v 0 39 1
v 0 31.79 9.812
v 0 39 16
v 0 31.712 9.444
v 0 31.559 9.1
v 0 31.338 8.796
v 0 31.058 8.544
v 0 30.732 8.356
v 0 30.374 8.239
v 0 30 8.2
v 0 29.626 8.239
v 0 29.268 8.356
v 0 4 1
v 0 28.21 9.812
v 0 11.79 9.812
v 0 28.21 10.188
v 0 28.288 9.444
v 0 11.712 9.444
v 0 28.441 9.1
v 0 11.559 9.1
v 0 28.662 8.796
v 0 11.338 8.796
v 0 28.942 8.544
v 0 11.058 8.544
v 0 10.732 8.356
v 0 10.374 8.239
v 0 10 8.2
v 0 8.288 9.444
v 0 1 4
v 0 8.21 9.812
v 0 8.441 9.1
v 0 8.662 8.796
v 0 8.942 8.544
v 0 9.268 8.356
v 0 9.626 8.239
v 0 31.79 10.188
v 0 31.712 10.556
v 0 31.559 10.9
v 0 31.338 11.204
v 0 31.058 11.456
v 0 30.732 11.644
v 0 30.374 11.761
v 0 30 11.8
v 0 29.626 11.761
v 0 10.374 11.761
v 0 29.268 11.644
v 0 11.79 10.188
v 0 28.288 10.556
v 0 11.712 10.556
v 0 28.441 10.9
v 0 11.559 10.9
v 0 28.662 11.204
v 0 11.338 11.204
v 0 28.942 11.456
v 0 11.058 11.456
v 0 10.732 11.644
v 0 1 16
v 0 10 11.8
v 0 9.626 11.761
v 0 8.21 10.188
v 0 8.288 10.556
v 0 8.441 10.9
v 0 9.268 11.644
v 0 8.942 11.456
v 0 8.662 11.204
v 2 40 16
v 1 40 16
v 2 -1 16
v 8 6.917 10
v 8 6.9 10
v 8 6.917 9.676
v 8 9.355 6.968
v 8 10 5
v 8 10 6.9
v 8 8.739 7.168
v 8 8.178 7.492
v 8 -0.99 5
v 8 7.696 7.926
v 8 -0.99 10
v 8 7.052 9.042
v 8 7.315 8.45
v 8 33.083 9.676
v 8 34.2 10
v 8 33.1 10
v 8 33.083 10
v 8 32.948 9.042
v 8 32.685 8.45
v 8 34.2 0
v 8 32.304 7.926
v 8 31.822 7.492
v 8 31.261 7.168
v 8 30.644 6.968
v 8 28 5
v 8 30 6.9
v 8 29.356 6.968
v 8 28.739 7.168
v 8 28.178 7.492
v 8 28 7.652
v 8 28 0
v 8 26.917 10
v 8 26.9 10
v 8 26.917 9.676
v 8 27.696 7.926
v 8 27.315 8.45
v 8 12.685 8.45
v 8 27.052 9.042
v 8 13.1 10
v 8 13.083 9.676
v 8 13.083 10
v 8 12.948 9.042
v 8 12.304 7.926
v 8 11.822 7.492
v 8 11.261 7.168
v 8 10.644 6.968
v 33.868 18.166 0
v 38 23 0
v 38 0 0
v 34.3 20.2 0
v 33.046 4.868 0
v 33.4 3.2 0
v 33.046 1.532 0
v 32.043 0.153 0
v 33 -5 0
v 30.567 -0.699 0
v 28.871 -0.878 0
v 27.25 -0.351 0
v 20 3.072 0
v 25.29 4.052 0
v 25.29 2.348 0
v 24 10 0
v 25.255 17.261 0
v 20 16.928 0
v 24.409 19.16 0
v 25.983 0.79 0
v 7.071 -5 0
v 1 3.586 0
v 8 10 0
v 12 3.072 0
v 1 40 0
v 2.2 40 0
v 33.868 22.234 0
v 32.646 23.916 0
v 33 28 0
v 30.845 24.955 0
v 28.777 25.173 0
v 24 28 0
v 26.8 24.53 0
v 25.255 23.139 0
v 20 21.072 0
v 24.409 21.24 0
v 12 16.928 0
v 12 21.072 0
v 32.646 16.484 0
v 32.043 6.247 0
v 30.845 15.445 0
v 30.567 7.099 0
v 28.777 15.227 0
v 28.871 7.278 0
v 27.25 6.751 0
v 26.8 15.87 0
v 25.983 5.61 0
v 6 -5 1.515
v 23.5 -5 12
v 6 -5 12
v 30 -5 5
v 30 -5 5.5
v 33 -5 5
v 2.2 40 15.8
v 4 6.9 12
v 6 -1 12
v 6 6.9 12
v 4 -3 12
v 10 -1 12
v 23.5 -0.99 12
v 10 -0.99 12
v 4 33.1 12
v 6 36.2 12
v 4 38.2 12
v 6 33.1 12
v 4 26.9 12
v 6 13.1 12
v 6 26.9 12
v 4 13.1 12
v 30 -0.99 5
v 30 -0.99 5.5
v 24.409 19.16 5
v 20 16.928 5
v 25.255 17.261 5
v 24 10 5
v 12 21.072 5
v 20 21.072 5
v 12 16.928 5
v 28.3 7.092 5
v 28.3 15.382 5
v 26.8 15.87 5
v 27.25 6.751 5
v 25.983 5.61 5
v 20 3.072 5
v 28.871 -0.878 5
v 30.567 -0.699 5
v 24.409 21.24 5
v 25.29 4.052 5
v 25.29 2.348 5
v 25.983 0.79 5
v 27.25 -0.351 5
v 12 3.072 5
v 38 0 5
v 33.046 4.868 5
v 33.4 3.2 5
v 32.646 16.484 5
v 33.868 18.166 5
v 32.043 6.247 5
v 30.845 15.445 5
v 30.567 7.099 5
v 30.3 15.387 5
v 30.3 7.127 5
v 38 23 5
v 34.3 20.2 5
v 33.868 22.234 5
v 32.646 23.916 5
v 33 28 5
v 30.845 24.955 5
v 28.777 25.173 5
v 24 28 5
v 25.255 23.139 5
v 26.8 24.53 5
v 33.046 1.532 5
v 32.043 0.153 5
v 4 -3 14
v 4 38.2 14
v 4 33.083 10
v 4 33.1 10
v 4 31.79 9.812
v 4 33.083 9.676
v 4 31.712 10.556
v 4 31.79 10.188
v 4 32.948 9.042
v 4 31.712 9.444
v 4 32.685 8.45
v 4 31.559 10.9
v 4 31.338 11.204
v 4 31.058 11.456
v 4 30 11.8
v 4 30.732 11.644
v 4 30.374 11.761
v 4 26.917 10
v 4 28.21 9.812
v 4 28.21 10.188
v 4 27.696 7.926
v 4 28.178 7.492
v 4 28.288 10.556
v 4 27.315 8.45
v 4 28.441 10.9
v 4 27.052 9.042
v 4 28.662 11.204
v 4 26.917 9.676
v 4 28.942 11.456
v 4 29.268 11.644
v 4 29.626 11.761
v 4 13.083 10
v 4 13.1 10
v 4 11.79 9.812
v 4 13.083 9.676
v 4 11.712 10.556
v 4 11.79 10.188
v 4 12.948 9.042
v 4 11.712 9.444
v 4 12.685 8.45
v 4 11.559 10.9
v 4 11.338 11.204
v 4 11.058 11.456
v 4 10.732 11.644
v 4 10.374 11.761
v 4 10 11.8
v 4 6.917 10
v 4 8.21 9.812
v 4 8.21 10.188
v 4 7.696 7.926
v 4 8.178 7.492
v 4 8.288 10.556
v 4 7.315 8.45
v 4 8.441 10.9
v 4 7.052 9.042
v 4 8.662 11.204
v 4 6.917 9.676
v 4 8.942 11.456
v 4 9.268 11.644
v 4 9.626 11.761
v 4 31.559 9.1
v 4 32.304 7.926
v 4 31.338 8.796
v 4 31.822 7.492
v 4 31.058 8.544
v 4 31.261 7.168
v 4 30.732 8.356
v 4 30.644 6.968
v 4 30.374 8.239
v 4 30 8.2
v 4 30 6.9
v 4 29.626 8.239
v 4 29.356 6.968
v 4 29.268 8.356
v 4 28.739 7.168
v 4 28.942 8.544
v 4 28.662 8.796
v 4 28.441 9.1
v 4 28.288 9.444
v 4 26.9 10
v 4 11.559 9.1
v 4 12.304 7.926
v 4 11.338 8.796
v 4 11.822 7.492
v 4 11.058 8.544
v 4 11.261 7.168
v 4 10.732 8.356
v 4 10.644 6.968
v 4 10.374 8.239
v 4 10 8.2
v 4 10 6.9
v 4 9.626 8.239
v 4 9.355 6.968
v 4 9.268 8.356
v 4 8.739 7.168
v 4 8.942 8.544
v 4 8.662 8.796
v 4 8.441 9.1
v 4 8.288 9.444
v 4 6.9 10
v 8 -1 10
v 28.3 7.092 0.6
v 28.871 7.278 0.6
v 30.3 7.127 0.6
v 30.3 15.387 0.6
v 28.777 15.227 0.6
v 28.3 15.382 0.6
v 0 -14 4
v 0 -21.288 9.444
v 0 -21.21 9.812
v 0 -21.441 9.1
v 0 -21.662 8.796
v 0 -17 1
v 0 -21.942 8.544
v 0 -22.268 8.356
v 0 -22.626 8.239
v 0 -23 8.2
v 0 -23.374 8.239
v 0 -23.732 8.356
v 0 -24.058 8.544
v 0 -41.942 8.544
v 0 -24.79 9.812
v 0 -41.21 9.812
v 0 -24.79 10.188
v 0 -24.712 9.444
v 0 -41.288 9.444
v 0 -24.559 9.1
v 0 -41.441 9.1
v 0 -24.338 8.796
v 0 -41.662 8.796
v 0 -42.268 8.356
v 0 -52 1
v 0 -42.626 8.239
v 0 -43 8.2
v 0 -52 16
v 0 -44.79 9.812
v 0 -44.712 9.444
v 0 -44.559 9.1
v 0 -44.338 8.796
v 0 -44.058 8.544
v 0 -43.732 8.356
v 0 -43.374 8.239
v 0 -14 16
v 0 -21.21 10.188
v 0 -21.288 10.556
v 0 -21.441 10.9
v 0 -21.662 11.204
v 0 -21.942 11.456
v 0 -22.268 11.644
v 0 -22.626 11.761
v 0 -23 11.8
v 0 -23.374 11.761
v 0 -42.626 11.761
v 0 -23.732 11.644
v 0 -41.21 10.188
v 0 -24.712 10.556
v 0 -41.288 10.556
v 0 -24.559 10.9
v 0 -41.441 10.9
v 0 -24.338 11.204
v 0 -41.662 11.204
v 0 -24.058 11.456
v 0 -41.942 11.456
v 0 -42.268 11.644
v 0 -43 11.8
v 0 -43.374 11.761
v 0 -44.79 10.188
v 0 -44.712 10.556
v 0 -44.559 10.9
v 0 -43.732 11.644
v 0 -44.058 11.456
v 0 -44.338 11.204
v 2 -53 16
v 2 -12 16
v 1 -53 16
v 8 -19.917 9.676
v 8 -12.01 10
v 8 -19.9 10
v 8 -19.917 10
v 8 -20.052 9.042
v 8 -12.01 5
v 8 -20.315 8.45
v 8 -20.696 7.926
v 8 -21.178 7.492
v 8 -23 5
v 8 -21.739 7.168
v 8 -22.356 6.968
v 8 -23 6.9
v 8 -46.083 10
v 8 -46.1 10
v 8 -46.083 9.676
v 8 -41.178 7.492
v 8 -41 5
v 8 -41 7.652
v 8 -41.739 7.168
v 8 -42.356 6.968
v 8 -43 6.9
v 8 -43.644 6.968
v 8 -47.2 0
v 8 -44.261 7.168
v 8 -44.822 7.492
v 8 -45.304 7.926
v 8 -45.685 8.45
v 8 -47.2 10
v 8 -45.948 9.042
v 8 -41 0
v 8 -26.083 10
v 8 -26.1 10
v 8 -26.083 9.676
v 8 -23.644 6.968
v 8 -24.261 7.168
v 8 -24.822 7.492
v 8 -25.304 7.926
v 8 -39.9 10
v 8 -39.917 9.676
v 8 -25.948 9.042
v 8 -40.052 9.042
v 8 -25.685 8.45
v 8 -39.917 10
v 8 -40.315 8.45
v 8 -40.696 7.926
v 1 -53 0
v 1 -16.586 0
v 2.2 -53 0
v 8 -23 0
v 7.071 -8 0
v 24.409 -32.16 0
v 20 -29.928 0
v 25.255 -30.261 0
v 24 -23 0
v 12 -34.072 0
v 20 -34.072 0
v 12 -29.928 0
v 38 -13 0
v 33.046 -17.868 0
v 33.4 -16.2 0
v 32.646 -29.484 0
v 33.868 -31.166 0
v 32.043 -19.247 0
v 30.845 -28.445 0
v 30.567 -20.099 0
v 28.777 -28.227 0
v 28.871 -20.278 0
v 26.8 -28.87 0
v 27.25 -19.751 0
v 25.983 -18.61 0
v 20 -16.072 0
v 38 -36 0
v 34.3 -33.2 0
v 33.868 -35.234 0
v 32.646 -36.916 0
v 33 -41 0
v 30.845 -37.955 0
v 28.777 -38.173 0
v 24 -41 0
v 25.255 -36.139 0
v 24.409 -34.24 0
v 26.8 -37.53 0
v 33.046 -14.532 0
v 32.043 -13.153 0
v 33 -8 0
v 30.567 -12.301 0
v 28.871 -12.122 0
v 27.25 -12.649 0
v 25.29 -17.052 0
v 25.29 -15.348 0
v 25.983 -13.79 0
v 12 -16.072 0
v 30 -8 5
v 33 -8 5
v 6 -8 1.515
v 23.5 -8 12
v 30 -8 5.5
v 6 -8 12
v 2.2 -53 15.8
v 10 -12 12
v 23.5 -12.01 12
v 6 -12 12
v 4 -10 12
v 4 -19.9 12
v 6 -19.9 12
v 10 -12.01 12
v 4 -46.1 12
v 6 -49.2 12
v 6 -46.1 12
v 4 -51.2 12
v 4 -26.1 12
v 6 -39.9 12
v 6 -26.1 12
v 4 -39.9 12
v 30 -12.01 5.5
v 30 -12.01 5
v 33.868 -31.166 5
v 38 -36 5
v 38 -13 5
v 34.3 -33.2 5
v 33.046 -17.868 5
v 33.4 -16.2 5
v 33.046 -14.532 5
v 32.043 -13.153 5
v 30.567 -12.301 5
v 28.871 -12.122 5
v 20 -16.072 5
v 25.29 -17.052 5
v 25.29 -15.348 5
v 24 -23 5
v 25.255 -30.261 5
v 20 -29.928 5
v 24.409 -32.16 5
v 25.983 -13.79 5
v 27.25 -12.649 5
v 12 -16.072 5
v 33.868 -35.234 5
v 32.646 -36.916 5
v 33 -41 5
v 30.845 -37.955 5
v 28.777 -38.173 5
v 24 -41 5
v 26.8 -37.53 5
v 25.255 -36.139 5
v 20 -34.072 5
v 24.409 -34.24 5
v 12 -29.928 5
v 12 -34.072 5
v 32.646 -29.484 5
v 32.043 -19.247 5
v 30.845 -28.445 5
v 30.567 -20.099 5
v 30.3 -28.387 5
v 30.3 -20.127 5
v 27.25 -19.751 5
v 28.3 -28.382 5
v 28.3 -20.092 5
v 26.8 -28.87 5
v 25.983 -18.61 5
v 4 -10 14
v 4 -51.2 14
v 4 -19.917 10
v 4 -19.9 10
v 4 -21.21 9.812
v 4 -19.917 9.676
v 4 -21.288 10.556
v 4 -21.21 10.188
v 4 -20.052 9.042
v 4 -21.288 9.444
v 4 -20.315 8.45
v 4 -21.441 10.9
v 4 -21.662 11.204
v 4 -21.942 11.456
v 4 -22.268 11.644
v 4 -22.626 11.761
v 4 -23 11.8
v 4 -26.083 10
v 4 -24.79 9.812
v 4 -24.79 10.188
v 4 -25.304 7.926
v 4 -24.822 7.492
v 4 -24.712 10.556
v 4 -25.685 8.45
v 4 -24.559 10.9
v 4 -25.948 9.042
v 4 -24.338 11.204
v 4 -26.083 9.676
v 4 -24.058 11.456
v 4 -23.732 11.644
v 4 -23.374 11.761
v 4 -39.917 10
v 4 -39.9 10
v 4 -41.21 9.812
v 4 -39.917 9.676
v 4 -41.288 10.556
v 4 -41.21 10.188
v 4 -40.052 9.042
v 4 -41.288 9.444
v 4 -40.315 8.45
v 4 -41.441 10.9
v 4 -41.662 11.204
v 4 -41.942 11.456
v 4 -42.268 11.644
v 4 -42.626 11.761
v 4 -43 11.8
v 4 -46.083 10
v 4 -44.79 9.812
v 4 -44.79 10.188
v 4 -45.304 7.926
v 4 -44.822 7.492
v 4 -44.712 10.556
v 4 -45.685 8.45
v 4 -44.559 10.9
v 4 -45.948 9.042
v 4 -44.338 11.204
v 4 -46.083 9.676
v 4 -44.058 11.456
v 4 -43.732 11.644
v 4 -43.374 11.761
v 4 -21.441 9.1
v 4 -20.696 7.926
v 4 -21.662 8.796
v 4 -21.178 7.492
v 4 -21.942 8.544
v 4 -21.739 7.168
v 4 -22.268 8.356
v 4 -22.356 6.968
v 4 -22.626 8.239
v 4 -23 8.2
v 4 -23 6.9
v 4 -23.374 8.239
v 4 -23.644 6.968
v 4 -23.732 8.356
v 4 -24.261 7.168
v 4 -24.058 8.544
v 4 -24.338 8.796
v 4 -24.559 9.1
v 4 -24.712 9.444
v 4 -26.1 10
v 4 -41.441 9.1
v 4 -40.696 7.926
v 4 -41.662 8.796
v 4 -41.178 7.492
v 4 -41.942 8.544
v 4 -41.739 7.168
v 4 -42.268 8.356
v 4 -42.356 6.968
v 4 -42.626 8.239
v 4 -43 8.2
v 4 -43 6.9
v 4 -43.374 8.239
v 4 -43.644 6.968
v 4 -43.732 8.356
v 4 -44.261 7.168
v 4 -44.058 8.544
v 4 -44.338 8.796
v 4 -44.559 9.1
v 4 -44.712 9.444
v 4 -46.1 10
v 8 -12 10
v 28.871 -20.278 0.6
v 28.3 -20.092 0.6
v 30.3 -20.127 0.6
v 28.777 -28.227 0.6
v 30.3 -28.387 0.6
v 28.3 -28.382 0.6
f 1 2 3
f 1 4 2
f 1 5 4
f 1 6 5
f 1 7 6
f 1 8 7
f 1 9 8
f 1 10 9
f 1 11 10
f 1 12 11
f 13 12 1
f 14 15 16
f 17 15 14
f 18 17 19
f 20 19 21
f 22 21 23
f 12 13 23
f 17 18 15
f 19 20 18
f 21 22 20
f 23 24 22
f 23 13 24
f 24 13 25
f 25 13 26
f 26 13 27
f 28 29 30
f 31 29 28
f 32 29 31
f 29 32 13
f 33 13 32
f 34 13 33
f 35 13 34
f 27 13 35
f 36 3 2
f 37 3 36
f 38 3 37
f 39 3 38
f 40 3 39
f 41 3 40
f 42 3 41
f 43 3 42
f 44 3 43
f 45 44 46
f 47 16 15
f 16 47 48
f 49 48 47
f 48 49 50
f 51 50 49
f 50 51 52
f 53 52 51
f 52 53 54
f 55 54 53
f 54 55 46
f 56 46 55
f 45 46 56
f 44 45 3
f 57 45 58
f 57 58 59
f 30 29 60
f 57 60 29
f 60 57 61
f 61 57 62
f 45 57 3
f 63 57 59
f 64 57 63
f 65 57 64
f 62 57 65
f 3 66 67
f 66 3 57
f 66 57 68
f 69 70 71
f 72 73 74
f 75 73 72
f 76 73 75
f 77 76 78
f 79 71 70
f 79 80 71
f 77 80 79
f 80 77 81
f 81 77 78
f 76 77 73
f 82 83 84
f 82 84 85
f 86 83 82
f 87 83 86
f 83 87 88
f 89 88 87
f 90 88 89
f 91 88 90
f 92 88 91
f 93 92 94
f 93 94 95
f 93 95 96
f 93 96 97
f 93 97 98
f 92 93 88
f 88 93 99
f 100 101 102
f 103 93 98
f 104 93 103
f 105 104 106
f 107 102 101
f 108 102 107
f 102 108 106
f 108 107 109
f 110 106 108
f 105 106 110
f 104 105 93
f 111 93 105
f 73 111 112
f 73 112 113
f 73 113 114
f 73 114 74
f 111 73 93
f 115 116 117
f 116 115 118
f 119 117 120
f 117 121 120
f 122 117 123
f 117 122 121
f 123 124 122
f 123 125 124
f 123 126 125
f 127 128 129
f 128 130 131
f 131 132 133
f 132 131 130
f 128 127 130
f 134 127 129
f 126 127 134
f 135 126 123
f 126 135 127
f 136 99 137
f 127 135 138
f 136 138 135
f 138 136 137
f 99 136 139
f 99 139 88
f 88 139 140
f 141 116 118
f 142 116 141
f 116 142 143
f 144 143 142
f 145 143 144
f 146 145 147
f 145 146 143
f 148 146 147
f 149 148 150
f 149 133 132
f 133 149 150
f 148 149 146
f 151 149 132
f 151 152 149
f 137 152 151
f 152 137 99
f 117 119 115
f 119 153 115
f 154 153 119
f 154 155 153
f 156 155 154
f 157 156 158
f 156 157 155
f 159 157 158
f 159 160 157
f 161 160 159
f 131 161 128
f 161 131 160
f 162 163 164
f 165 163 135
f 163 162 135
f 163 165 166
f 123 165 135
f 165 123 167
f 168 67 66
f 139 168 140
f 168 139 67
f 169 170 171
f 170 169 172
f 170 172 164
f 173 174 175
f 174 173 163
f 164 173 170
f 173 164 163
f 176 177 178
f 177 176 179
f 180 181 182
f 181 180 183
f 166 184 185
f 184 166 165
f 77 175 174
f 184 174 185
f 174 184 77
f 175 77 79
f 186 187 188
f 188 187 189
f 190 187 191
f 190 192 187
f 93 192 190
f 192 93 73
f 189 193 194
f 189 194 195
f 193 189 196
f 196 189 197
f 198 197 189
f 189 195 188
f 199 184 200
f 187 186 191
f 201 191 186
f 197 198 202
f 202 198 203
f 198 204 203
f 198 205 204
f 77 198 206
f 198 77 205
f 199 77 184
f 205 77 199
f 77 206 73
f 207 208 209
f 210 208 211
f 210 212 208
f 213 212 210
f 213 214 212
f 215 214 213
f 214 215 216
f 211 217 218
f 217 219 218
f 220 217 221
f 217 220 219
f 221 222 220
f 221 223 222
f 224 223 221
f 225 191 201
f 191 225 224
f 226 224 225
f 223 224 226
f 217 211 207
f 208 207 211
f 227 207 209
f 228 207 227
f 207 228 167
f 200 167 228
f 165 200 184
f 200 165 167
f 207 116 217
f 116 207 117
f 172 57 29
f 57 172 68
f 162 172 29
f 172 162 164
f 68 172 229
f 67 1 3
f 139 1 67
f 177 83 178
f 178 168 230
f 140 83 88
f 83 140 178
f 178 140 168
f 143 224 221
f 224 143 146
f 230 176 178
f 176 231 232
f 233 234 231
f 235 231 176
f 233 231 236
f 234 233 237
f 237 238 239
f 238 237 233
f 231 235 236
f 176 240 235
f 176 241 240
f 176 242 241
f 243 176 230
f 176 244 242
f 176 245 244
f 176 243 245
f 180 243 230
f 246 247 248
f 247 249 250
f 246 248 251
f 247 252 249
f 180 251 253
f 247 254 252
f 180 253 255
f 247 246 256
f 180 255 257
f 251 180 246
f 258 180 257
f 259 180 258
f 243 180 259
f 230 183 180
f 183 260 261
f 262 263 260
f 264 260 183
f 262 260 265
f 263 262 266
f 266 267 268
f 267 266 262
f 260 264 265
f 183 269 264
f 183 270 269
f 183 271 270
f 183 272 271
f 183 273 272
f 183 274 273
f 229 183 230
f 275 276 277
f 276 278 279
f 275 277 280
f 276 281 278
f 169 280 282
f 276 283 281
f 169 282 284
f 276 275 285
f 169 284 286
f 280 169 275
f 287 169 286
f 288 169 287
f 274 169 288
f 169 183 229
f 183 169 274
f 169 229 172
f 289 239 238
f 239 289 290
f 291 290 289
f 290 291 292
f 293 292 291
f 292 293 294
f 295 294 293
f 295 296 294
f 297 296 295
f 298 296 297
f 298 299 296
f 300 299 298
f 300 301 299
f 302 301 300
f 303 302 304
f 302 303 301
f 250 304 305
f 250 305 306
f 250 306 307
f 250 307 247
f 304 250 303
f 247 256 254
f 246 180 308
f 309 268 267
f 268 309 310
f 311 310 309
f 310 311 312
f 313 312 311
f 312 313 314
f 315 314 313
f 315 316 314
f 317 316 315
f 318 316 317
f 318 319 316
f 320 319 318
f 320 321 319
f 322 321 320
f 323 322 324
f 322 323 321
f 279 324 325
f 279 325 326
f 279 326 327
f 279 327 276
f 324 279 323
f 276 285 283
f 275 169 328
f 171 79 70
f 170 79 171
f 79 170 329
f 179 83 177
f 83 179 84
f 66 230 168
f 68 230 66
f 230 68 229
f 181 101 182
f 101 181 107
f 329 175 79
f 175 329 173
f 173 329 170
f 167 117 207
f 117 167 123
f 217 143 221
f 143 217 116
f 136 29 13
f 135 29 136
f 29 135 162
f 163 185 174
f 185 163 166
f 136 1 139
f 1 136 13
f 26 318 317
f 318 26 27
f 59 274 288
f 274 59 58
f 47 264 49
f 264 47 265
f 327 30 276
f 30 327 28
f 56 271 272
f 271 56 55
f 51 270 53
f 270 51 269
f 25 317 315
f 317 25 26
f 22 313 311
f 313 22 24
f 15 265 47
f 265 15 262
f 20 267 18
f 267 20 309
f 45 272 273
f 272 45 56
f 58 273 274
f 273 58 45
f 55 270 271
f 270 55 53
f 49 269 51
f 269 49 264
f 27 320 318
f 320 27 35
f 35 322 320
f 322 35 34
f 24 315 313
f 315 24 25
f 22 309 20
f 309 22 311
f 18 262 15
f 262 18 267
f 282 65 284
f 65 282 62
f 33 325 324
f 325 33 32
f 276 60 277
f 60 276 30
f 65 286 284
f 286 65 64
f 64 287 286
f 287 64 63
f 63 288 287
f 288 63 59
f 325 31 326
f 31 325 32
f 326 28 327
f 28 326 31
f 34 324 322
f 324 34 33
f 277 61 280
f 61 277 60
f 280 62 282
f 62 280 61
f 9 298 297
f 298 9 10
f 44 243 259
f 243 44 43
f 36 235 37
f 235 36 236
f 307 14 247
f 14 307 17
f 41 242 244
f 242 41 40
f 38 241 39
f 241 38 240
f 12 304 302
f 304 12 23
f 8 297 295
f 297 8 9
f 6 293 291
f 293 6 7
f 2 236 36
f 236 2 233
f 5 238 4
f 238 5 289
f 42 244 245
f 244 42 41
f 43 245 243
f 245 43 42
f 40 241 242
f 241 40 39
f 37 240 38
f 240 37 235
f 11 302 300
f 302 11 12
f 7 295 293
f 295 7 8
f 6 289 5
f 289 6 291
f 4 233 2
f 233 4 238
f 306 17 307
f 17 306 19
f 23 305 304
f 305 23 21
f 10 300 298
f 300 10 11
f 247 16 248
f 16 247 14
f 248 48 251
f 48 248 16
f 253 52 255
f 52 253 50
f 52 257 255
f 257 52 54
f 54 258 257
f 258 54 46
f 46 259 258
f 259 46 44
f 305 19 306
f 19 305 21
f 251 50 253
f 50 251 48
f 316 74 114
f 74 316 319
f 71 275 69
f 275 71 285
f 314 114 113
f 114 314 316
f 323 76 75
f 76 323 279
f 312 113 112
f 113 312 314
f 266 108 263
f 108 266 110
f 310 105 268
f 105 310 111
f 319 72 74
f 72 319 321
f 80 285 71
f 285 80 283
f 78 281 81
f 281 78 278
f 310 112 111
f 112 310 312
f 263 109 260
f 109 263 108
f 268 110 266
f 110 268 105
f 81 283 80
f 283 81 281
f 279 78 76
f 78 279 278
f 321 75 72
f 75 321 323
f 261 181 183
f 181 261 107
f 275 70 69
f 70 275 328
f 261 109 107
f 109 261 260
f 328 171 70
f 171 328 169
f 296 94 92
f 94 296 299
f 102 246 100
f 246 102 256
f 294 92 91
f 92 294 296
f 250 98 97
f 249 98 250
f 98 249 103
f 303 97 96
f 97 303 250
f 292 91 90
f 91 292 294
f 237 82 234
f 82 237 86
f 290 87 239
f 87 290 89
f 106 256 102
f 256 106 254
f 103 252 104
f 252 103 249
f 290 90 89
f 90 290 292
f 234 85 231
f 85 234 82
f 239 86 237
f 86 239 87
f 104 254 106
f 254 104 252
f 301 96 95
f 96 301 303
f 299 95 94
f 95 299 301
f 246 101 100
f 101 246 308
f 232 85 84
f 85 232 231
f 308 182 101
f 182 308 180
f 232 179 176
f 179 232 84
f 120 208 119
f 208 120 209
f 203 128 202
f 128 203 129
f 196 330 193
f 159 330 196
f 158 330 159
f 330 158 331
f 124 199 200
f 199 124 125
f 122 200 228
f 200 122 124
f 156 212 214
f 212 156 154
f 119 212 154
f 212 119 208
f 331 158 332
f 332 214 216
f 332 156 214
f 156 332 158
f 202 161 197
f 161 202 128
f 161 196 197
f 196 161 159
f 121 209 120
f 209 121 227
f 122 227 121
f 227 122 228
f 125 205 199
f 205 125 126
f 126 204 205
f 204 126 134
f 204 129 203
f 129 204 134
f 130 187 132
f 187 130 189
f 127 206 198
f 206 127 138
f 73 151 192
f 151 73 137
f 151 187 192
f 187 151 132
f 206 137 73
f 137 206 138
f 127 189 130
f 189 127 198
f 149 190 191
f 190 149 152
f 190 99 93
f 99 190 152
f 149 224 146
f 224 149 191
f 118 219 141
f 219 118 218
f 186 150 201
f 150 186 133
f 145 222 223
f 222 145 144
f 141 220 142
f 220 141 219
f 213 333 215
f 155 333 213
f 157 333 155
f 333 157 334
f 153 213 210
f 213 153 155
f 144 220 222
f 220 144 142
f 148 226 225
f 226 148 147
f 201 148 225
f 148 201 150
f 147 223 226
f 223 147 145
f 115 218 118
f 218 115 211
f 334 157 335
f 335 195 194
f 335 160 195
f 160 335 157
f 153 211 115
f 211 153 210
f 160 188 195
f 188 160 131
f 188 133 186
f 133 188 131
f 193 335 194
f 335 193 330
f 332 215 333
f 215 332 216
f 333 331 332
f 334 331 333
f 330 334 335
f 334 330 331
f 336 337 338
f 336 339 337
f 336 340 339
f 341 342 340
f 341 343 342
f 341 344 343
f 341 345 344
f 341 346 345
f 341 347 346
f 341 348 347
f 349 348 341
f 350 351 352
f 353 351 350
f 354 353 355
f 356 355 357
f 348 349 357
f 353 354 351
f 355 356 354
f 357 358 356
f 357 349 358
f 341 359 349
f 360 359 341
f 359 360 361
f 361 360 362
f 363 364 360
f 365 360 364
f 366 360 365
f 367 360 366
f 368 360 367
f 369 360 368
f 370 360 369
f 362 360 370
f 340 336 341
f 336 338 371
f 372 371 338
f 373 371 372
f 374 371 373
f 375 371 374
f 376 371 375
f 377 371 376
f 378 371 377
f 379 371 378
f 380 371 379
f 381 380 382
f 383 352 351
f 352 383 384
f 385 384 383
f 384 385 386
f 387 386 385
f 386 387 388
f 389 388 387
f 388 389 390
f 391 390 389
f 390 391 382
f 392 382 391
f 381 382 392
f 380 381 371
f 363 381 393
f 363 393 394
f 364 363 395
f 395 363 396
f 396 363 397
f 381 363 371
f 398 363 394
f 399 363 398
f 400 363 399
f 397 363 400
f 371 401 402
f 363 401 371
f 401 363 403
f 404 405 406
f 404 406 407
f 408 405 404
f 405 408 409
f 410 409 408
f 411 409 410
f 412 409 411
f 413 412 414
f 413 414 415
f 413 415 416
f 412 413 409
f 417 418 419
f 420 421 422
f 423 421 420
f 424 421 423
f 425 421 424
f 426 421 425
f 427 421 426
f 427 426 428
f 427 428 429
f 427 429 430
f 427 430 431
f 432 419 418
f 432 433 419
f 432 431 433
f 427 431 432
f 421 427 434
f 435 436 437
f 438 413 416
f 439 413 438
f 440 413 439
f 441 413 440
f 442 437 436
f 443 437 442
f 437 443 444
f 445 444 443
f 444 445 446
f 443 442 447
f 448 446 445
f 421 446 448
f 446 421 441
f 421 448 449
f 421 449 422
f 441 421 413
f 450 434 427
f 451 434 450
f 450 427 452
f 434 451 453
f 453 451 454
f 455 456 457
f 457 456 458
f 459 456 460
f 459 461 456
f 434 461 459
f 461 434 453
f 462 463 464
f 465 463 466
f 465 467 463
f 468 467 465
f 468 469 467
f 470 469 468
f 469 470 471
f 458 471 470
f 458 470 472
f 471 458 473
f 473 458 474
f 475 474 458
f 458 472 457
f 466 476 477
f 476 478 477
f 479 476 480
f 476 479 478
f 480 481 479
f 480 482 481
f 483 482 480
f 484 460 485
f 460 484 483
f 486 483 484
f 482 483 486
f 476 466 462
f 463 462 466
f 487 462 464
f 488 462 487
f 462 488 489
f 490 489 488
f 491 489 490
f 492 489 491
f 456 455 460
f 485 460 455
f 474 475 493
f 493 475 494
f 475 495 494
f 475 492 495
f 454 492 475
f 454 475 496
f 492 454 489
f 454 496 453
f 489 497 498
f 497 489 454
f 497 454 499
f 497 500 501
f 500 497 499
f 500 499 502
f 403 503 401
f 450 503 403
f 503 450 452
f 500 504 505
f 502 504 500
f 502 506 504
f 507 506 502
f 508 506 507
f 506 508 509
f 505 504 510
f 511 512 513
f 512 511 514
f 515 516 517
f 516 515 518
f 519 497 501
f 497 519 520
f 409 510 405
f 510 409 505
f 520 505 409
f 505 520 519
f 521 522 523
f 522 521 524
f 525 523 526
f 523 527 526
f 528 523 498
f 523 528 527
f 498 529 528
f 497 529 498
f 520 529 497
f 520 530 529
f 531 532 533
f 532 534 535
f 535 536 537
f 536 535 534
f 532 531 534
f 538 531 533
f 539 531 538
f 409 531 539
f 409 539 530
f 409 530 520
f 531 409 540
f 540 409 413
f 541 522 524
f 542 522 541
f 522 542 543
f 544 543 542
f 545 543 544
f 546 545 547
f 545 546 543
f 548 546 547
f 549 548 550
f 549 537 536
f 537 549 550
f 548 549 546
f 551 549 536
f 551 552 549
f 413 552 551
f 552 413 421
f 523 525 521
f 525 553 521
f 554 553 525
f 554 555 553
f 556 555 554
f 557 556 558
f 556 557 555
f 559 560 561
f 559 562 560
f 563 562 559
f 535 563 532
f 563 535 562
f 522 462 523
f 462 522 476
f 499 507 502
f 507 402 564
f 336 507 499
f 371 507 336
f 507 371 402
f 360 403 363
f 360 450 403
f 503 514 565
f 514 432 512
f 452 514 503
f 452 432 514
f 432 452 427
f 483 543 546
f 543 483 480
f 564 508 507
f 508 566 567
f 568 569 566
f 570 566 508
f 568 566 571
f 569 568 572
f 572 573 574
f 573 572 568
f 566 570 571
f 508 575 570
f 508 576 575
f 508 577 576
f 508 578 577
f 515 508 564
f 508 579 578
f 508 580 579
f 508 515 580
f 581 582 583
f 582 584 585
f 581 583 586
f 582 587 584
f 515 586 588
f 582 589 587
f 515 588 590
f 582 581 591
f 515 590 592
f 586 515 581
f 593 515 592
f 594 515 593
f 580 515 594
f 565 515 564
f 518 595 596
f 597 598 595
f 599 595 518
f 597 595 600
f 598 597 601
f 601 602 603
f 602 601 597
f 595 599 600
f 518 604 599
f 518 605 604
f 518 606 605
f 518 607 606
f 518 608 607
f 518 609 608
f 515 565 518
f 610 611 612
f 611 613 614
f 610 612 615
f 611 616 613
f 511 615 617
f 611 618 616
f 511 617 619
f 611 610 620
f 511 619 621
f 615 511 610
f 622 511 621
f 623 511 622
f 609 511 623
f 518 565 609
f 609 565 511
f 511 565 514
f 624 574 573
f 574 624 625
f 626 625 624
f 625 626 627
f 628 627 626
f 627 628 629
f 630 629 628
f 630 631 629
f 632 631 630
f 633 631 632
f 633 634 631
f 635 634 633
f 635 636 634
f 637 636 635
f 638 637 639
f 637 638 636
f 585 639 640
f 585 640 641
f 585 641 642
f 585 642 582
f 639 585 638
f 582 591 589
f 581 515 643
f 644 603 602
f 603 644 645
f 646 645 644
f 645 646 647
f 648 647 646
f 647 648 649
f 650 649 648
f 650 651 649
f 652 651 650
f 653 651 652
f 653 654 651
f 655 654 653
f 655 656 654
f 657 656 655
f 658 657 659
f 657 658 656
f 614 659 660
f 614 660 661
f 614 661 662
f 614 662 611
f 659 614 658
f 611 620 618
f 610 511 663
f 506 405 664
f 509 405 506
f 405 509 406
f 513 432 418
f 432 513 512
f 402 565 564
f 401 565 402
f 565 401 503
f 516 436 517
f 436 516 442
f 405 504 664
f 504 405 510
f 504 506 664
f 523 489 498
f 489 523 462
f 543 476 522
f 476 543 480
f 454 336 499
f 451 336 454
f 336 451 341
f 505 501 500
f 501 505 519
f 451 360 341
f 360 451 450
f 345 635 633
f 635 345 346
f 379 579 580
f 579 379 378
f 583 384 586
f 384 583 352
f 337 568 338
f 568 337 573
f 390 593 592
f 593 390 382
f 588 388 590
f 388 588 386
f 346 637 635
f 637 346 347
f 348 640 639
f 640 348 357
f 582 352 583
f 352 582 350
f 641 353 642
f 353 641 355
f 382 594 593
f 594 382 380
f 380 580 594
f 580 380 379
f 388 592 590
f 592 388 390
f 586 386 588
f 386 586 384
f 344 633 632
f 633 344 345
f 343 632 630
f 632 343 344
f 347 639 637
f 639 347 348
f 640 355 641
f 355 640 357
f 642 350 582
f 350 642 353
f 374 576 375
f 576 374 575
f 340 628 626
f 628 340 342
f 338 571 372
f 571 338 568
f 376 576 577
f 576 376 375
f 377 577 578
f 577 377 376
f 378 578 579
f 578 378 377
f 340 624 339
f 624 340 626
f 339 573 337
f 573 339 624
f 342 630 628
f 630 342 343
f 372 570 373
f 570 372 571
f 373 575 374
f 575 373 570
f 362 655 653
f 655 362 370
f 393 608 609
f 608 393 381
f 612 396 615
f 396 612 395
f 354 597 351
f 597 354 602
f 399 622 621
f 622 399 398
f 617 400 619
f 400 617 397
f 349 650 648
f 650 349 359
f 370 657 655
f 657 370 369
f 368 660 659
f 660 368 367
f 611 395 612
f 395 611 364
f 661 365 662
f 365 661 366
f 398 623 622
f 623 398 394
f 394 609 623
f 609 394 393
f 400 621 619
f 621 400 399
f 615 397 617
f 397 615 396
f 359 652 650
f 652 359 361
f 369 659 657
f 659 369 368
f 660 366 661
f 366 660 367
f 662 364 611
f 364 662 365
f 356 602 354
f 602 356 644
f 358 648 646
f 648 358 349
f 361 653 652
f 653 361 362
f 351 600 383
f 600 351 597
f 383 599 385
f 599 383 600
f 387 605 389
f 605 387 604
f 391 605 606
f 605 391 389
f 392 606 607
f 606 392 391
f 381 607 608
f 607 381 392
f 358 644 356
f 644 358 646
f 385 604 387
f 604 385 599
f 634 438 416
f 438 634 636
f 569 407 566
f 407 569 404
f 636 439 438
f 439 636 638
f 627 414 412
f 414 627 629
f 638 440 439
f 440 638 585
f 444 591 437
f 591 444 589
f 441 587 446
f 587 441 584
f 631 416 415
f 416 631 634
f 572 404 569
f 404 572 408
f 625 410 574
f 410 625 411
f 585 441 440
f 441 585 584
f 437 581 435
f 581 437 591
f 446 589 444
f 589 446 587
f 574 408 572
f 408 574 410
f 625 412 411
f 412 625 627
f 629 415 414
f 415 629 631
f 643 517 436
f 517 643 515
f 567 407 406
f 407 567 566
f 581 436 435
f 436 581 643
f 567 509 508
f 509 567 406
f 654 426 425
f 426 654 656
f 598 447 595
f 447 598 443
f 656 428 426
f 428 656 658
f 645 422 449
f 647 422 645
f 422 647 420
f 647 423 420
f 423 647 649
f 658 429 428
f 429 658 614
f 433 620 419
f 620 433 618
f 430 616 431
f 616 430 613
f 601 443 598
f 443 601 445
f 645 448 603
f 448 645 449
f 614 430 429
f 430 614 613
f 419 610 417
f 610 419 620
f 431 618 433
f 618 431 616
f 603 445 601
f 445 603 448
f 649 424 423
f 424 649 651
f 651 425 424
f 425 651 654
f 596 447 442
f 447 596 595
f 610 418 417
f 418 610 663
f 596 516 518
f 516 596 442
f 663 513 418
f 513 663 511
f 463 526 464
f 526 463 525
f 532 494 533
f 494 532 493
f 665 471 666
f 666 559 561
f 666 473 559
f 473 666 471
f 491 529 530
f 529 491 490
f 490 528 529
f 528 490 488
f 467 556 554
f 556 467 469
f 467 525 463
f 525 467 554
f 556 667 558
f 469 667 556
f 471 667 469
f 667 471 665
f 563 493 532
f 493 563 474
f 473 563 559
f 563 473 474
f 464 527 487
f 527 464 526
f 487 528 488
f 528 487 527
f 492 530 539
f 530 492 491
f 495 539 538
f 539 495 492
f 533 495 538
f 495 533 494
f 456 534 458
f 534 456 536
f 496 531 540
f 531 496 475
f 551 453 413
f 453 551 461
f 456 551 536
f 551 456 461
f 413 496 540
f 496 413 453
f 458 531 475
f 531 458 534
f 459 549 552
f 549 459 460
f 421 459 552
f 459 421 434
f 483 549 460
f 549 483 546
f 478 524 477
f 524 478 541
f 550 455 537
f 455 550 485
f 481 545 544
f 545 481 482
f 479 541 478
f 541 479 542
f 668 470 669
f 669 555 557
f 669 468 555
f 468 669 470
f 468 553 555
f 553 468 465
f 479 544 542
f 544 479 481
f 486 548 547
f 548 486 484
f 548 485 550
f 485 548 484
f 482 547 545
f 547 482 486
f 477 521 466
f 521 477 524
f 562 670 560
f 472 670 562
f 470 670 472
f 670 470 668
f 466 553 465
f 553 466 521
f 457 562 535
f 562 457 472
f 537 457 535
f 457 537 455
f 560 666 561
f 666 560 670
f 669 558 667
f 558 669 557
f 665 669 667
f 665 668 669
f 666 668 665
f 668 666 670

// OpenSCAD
//Original Prusa

// PRUSA iteration3
// Z axis top holder
// GNU GPL v3
// Josef Průša <iam@josefprusa.cz> and contributors
// http://www.reprap.org/wiki/Prusa_Mendel
// http://prusamendel.org


module z_top_base(){
 translate([0,-5,0]) cube([8,45,16]); // plate touching the base
 translate([0,-5,0]) cube([30,4.01,12]); // plate touching the base
 translate([0,-5,0]) cube([38,45,5]); // plate touching the base   
}

module z_top_fancy(){
 // Corner cutouts
 translate([0.5,0.5,0])         rotate([0,0,-45-180]) translate([-15,0,-1]) cube([30,30,51]);    
 translate([0.5,40-0.5,0])      rotate([0,0,-45+90])  translate([-15,0,-1]) cube([30,30,51]);  
 
    
 translate([-13,40+5+10.2,0])   rotate([0,0,-45-0])   translate([0,0,-1])   cube([30,30,51]); // frame side angle
 translate([8,28,0]) translate([0,0,-1]) cube([50,50,51]);       

 translate([4,0,12]) rotate([0,0, 0])    translate([0,-5,0]) cube([30,50,30]);          
 translate([6,0,12]) rotate([0,-45, 0])  translate([0,-5,0]) cube([30,50,30]);
 translate([8,4,10]) rotate([0,-45, 0])  translate([0,-5,0]) cube([30,50,30]);

 translate([38-2.5,-5+2.5,0])   rotate([0,0,-45-90]) translate([-15,0,-1]) cube([30,30,51]);         
 translate([35,26,0])           rotate([0,0,-45])    translate([-15,0,-1]) cube([30,30,51]); // outer corner
 translate([0,0,5])             rotate([45+180,0,0]) rotate([0,0,-45+90])  translate([0,0,-15]) cube([30,30,30]);

 // Stiffner cut out
 translate([30,0,5.5]) rotate([0,-45,0]) translate([0,-5,0]) cube([30,50,30]);
 //easy cleanup fix
 translate([0.5,0,0.5]) rotate([0,45,0]) translate([-2.5,0,-5]) cube([5,40,5]);
}

module z_top_holes(){
     // Screw holes frame
     translate([-1,10,10])      rotate([0,90,0]) cylinder(h = 20, r=1.8, $fn=30);
     translate([-1,10+20,10])   rotate([0,90,0]) cylinder(h = 20, r=1.8, $fn=30);
    

    // Screw heads
    translate([4,10,10]) rotate([0,90,0]) cylinder(h = 20, r=3.1, $fn=30);
    translate([4,10-3.1,10]) cube([10,6.2,10]);
    translate([4,10+20,10])  rotate([0,90,0]) cylinder(h = 20, r=3.1, $fn=30);
    translate([4,10+20-3.1,10]) cube([10,6.2,10]);

    // Z rod holder
    translate([25+4.3,3.2,-1]) rotate([0,0,0]) cylinder(h = 50, r=4.1, $fn=15);

    
    
    // odlehceni A
    translate([16,10,-1]) rotate([0,0,0]) cylinder(h = 50, r=8, $fn=6); // odlehceni
    translate([16,28,-1]) rotate([0,0,0]) cylinder(h = 50, r=8, $fn=6); // odlehceni
    
    translate([25+4.3,3.2+17,-1]) rotate([0,0,0]) cylinder(h = 50, r=5, $fn=15); // screw hole

    translate([25+4.3-1,3,0.6]) cube([2,15,7]); // it's bit up because it helps with printing
 
}

module z_top_right(){
    difference(){
        z_top_base();
        z_top_fancy();
        z_top_holes();
    }
}

module z_top_left(){
    translate([0,-13,0]) mirror([0,1,0]) 
    difference(){
        z_top_base();
        z_top_fancy();
        z_top_holes();
    }
}

// Final part
z_top_left();
z_top_right();
